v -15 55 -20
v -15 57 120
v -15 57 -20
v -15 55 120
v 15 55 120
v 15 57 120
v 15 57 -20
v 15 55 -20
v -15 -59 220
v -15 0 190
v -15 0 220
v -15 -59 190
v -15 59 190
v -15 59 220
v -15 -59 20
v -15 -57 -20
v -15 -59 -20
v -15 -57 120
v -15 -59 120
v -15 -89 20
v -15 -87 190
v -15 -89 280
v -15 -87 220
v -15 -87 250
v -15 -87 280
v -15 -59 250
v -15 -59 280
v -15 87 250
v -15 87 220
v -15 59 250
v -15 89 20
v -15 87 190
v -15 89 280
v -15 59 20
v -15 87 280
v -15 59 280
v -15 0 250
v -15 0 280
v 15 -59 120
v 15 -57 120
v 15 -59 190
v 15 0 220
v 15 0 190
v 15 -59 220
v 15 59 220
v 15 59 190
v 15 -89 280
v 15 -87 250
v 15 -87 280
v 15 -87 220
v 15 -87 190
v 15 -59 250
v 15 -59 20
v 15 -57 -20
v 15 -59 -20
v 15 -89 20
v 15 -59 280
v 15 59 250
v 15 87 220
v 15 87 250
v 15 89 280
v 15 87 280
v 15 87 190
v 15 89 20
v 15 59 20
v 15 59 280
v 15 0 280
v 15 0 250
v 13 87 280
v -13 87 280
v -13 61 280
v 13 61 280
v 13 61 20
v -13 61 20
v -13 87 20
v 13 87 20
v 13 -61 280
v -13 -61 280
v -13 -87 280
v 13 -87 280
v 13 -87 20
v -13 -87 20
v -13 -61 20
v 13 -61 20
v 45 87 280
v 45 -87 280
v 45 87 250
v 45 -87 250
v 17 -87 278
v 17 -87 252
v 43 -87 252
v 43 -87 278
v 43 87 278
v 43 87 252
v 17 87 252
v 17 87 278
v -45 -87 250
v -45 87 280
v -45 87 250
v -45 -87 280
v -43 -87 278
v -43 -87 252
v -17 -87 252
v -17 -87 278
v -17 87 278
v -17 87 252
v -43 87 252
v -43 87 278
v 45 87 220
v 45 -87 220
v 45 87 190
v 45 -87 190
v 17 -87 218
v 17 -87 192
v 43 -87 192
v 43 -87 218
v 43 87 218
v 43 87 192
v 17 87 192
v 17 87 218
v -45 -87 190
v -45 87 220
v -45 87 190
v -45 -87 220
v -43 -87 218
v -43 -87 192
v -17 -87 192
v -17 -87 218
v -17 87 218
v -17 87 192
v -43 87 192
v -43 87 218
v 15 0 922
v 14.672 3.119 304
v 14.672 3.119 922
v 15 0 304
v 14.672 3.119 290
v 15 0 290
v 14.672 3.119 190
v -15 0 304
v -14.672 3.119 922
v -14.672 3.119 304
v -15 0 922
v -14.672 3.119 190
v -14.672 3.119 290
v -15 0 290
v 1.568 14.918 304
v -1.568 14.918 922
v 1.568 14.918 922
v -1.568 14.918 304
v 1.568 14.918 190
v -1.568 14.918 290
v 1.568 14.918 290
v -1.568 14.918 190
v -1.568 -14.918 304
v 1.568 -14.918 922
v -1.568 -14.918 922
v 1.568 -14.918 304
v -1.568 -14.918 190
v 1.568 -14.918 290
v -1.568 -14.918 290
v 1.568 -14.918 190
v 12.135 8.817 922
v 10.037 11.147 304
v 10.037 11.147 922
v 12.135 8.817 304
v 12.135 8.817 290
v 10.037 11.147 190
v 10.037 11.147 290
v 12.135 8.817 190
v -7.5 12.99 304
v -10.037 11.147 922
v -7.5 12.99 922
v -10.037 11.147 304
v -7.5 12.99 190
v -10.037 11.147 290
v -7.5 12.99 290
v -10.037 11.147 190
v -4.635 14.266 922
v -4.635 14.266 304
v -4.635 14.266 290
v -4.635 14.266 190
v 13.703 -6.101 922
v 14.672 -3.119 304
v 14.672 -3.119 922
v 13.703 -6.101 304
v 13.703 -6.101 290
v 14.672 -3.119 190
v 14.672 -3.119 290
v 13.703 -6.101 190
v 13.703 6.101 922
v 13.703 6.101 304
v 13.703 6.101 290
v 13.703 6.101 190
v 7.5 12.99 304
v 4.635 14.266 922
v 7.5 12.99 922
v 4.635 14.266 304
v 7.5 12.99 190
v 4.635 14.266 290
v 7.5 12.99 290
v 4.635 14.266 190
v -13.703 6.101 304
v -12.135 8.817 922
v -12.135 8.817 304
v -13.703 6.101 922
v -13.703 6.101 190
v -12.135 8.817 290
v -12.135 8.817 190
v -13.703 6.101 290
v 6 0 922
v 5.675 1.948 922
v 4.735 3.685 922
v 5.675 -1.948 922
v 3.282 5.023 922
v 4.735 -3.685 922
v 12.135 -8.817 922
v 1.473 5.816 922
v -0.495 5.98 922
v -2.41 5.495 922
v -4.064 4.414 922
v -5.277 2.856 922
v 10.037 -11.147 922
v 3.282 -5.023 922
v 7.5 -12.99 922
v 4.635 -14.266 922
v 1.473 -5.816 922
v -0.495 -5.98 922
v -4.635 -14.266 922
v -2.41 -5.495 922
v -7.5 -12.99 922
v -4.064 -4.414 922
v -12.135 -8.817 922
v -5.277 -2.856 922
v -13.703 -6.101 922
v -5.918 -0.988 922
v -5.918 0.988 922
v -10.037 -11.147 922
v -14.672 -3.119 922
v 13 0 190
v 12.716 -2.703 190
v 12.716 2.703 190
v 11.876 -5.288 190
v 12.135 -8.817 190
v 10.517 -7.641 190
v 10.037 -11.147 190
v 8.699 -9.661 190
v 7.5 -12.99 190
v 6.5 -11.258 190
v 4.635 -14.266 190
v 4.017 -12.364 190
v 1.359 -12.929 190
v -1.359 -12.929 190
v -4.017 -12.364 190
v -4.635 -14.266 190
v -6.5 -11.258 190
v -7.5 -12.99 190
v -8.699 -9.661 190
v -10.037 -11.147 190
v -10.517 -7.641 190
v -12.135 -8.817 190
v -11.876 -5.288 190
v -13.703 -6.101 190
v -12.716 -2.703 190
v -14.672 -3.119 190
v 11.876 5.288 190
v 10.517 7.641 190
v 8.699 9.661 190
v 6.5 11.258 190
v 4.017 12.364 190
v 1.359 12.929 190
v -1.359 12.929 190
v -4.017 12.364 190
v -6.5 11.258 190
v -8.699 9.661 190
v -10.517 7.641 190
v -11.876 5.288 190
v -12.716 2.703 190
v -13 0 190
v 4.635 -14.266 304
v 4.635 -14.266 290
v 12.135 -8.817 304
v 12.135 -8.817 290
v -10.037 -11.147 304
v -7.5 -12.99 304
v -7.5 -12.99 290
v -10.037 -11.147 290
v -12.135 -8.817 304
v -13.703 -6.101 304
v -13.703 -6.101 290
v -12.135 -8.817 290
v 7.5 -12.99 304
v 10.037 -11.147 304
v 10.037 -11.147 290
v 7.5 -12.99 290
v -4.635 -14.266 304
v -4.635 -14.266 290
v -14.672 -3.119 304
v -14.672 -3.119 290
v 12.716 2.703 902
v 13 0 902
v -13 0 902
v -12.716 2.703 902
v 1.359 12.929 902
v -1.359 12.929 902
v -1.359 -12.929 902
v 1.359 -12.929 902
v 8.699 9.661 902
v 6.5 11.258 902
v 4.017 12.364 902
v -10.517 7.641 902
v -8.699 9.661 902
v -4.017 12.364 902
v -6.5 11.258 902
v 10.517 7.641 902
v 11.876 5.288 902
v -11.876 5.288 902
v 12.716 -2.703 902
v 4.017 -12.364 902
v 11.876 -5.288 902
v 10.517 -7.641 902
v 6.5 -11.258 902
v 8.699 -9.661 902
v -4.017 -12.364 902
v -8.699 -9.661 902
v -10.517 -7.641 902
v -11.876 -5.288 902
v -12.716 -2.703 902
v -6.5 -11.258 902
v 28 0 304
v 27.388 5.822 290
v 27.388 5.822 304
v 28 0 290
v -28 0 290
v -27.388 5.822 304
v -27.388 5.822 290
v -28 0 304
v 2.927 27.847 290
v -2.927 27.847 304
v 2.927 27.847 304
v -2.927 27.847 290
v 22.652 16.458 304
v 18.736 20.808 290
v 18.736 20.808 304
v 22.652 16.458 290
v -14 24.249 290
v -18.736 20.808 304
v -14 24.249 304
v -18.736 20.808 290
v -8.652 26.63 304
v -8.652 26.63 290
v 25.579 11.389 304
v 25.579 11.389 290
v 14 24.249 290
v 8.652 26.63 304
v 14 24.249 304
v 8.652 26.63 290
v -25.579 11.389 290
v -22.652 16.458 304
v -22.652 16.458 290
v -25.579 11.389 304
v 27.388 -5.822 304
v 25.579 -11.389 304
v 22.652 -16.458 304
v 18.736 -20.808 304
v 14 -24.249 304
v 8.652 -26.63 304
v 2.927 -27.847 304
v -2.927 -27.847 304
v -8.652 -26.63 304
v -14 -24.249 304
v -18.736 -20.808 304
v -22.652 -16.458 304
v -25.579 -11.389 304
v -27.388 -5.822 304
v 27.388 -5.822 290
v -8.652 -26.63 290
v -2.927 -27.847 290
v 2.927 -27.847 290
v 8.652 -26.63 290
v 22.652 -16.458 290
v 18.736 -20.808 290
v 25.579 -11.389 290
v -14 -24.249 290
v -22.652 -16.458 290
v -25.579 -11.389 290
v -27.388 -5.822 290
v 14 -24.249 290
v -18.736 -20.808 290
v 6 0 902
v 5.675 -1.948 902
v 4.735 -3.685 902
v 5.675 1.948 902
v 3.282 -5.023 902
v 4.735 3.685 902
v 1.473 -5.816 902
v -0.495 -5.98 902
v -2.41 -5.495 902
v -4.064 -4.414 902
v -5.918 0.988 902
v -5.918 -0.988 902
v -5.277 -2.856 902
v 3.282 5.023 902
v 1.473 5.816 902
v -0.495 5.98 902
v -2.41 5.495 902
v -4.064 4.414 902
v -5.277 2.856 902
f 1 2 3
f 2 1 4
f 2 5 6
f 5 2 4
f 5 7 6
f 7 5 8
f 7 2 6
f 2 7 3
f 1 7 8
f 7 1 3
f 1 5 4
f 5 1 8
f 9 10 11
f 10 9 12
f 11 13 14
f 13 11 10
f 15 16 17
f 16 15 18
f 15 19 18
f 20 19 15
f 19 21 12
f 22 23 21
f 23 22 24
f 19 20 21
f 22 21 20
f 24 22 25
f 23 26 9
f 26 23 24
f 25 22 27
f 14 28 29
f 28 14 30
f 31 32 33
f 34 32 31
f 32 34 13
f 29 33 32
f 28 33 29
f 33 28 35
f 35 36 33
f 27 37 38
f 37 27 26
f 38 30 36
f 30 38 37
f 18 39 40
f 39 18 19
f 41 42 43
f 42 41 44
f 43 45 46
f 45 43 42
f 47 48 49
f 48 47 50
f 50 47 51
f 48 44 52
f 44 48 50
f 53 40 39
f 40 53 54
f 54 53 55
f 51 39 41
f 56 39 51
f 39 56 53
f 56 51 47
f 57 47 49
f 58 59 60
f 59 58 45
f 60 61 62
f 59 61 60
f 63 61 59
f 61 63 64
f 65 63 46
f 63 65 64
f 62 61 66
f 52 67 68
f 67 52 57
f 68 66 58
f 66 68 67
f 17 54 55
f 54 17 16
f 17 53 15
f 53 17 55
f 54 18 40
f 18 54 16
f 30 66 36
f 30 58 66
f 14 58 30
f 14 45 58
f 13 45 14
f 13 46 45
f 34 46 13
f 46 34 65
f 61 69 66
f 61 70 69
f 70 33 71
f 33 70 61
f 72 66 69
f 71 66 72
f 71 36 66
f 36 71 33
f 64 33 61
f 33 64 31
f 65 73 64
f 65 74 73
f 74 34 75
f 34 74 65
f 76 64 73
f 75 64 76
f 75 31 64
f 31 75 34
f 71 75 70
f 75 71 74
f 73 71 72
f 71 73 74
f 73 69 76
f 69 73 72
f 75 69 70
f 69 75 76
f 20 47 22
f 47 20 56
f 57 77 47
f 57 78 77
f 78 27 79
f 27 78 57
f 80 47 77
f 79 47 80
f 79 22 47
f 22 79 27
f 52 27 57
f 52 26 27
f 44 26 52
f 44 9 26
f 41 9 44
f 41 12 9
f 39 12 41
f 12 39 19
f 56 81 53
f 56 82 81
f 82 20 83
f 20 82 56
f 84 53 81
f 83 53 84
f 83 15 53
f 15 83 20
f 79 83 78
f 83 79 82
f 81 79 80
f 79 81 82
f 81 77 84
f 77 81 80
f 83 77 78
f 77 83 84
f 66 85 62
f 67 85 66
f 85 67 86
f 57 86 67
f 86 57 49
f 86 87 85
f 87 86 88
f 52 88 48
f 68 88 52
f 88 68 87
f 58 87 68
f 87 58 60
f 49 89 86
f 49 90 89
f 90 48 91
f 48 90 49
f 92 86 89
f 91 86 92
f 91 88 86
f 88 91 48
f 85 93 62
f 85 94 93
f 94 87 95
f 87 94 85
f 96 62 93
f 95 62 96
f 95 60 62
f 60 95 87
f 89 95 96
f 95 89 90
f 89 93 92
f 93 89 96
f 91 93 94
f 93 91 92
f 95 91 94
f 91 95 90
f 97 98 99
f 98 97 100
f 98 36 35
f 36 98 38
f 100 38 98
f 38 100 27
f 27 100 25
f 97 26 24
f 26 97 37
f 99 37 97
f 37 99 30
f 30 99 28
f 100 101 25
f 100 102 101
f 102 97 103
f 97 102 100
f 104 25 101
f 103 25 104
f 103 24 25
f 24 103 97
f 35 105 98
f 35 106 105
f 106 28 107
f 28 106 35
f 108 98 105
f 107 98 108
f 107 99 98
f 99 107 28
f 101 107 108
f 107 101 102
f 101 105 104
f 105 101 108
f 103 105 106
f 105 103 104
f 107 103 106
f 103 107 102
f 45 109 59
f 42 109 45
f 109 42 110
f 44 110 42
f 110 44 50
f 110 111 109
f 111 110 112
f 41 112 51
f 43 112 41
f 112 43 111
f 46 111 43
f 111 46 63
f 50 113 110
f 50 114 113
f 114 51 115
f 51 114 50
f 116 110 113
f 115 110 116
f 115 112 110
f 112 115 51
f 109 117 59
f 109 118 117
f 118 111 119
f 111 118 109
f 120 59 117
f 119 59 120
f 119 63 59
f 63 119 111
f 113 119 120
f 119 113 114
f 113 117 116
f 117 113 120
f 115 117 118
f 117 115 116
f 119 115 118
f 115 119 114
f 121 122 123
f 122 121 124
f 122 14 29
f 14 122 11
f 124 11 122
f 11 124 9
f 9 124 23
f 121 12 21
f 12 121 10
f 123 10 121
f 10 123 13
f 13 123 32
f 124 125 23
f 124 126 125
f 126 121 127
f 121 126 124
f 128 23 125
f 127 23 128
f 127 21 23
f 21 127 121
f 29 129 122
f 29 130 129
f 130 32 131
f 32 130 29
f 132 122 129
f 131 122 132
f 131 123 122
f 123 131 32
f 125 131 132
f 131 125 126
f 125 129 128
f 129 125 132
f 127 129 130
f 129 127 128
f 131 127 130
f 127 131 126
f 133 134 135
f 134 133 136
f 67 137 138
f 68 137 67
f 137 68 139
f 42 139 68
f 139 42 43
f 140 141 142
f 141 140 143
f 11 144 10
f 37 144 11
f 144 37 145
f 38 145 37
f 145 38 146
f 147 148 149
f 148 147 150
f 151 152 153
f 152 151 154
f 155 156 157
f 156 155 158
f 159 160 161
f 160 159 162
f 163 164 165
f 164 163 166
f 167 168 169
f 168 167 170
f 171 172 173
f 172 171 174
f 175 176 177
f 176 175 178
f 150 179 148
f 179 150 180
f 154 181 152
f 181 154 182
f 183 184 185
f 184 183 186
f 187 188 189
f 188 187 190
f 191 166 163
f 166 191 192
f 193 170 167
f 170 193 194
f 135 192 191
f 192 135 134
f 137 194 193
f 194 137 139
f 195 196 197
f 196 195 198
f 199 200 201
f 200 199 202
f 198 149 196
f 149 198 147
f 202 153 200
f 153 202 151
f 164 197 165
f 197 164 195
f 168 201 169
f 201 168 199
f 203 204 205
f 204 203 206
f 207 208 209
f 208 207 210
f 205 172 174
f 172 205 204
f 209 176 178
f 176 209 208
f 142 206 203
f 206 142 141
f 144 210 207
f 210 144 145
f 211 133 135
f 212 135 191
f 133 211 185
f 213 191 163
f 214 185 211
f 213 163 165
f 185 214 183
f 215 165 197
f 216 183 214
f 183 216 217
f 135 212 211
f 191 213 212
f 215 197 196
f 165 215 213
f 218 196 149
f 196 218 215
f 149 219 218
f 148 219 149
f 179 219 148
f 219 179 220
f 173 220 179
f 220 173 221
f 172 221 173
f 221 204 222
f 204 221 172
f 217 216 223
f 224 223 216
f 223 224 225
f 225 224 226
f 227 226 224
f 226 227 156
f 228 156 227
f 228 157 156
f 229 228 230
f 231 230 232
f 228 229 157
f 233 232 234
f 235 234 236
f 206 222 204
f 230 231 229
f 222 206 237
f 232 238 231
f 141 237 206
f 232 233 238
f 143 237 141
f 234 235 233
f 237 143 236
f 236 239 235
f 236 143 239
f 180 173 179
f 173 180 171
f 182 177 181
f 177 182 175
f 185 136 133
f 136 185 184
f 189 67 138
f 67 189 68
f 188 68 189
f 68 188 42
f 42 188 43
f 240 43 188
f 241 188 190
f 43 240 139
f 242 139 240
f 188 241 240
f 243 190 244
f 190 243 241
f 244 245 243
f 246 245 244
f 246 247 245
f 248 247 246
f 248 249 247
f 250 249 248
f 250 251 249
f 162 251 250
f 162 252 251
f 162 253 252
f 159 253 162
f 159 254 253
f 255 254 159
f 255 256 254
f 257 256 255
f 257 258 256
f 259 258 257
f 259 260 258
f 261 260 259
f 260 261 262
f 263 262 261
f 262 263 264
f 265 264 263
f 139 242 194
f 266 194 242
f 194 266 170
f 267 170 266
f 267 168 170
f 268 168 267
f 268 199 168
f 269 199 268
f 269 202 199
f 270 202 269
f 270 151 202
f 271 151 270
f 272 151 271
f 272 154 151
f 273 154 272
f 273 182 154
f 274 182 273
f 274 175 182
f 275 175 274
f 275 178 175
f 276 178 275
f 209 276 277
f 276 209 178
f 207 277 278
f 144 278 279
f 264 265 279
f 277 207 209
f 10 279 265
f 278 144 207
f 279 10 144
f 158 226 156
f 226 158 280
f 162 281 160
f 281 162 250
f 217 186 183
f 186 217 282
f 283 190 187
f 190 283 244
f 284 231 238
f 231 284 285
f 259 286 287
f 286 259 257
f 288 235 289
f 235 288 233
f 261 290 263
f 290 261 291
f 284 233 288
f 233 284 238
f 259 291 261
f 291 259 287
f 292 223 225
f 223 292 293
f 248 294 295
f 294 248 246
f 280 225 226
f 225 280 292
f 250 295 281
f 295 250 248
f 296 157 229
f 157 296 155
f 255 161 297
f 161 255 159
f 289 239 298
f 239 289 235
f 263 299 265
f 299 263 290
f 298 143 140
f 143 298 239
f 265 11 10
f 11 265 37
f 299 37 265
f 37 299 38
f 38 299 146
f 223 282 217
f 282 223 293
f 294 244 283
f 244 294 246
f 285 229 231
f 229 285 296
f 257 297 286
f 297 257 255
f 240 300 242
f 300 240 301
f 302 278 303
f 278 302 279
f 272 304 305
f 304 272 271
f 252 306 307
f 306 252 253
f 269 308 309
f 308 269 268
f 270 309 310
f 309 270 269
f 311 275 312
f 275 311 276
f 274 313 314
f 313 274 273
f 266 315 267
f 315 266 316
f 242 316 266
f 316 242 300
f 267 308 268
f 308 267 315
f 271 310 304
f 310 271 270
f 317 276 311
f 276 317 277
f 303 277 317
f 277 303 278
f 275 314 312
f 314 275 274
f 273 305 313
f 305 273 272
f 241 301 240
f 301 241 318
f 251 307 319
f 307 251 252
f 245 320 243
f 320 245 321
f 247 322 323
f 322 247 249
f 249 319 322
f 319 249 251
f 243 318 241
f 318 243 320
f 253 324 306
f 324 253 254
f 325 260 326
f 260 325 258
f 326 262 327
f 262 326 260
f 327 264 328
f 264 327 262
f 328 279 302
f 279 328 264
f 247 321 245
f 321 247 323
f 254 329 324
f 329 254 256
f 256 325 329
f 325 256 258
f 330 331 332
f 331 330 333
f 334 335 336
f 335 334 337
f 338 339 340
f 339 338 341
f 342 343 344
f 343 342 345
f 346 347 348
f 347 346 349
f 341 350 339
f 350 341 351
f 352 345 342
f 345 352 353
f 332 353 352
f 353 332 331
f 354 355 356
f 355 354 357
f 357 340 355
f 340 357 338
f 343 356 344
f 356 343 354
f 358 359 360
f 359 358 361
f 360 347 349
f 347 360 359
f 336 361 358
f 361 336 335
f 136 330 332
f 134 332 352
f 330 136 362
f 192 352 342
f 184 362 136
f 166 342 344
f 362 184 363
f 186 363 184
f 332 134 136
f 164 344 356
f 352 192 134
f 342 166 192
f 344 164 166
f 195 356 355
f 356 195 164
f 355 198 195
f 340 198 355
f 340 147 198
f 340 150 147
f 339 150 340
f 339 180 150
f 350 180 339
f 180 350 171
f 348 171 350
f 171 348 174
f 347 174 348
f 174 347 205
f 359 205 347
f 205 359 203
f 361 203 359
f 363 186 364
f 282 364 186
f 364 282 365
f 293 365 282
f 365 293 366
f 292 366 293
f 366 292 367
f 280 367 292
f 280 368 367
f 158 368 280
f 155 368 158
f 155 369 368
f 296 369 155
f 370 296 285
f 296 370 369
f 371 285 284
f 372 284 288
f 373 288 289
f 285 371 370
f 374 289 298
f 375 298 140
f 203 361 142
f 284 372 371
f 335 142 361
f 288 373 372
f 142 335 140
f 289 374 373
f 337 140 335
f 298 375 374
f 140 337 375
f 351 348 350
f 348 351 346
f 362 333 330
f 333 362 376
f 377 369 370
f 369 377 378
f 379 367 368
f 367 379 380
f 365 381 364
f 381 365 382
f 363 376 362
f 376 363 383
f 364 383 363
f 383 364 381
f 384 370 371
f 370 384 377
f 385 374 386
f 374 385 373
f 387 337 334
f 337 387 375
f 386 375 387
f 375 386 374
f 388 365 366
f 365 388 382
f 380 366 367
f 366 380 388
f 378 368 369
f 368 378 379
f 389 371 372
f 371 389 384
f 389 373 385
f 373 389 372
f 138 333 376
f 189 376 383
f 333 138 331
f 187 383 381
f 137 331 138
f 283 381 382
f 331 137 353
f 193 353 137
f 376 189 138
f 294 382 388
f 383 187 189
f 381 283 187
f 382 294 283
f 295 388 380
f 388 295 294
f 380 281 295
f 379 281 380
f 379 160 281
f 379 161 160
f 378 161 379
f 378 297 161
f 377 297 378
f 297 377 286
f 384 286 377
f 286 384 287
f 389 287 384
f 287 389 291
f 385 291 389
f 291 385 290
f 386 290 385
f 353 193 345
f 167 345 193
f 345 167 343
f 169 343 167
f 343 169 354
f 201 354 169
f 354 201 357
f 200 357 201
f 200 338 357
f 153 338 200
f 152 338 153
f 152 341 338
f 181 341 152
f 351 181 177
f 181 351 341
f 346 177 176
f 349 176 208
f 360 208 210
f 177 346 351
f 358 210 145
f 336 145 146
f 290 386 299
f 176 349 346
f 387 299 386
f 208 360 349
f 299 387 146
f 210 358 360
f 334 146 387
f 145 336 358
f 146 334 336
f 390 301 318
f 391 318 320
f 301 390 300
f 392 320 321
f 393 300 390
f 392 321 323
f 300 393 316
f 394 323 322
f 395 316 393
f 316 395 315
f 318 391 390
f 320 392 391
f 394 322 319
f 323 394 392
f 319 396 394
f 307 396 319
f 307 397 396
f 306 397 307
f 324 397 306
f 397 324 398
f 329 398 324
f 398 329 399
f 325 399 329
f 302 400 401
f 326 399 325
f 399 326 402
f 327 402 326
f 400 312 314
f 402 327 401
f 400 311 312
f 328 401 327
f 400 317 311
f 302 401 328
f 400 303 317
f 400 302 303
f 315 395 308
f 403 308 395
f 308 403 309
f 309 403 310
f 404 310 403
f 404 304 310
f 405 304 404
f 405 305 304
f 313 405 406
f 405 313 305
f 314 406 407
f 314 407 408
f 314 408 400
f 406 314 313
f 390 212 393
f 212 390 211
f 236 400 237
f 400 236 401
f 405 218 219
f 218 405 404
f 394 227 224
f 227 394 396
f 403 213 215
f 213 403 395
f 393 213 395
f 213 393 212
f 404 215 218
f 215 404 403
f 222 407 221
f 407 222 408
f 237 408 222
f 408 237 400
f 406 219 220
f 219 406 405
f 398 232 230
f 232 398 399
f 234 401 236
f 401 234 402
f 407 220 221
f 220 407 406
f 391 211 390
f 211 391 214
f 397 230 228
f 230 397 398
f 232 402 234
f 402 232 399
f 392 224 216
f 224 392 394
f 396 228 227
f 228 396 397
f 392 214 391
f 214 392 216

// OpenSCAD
// file: ../Common/tubular.scad
module square_tube(len, L)
{
        difference() {
                color("lightgray")
                        cube([L, len,  L]);
                translate([2, -1, 2])
                        color("lightgray")
                        cube([L-4, len+2,  L-4]);
        }
}

module cube_connector(L)
{
    color("gray")
        cube([L, L,  L]);    
}

module round_tube(d, L)
{
        color("lightgray") {
                difference() {
                        cylinder(r=d/2, h=L);
                        translate([0, 0, -1])
                                cylinder(r=d/2-2, h=L+2);
                }
        }
}
// main file
use <../Common/tubular.scad>;

module connector_1()
{
        color("black") {
                difference() {
                        cylinder(r=13, h=20);
                        translate([0, 0, -1])
                                cylinder(r=6, h=22);
                }
        }
}

module roller_bearings()
{
        color("black") {
                difference() {
                        cylinder(r=28, h=14);
                        translate([0, 0, -1])
                                cylinder(r=15, h=16);
                }
        }
}

module wheelfork(wheel_radius, axis_width, height, clamp_interspacing)
{
        height_fork = (wheel_radius - 20) + 30 + 30 + 30 + 30;

        // flat plates to fix wheel
        color("gray") {
                translate([-15, axis_width/2, -20])
                        cube([30, 2, 140]);
                translate([-15, -axis_width/2-4, -20])
                        cube([30, 2, 140]);
        }

        // fork: top-down elements
        translate([-15, 30+axis_width/2+4, 20])
                rotate([90, 0, 0])
                square_tube(height_fork, 30);
                
        translate([-15, -axis_width/2-4, 20])
                rotate([90, 0, 0])
                square_tube(height_fork, 30);
                
        width_fork_outside = axis_width + 2 * 2 + 2 * 30;

        echo("Fork vertical length: ", height_fork);
        echo("Fork width: ", width_fork_outside);

        
        // fork
        // left-right elements
        translate([15, -width_fork_outside/2, 20+height_fork-30])
                square_tube(width_fork_outside, 30);

        translate([-45, -width_fork_outside/2, 20+height_fork-30])
                square_tube(width_fork_outside, 30);


        translate([15, -width_fork_outside/2, 20+height_fork-90])
                square_tube(width_fork_outside, 30);

        translate([-45, -width_fork_outside/2, 20+height_fork-90])
                square_tube(width_fork_outside, 30);

        // Calcuate the height of various elements:
        z_start_inner_tube = 20 + height_fork - 90;
        z_bottom_clamp = height + 30; // +30: bottom tube main frame
        z_top_clamp = z_bottom_clamp + clamp_interspacing;
        z_end_inner_tube = z_top_clamp - 8;
        height_inner_tube = z_end_inner_tube - z_start_inner_tube;

        echo("Height inner tube: ", height_inner_tube);
        
        // inner tube for steering
        translate([0, 0, z_start_inner_tube])
                round_tube(30, height_inner_tube);

        // roller bearings
        translate([0, 0, z_start_inner_tube + 90 + 10])
                roller_bearings();

        // connector to fix the stepper to the inner tube 
        translate([0, 0, z_end_inner_tube-20])
                connector_1();
}

wheelfork(160, 110, 800, 100);
